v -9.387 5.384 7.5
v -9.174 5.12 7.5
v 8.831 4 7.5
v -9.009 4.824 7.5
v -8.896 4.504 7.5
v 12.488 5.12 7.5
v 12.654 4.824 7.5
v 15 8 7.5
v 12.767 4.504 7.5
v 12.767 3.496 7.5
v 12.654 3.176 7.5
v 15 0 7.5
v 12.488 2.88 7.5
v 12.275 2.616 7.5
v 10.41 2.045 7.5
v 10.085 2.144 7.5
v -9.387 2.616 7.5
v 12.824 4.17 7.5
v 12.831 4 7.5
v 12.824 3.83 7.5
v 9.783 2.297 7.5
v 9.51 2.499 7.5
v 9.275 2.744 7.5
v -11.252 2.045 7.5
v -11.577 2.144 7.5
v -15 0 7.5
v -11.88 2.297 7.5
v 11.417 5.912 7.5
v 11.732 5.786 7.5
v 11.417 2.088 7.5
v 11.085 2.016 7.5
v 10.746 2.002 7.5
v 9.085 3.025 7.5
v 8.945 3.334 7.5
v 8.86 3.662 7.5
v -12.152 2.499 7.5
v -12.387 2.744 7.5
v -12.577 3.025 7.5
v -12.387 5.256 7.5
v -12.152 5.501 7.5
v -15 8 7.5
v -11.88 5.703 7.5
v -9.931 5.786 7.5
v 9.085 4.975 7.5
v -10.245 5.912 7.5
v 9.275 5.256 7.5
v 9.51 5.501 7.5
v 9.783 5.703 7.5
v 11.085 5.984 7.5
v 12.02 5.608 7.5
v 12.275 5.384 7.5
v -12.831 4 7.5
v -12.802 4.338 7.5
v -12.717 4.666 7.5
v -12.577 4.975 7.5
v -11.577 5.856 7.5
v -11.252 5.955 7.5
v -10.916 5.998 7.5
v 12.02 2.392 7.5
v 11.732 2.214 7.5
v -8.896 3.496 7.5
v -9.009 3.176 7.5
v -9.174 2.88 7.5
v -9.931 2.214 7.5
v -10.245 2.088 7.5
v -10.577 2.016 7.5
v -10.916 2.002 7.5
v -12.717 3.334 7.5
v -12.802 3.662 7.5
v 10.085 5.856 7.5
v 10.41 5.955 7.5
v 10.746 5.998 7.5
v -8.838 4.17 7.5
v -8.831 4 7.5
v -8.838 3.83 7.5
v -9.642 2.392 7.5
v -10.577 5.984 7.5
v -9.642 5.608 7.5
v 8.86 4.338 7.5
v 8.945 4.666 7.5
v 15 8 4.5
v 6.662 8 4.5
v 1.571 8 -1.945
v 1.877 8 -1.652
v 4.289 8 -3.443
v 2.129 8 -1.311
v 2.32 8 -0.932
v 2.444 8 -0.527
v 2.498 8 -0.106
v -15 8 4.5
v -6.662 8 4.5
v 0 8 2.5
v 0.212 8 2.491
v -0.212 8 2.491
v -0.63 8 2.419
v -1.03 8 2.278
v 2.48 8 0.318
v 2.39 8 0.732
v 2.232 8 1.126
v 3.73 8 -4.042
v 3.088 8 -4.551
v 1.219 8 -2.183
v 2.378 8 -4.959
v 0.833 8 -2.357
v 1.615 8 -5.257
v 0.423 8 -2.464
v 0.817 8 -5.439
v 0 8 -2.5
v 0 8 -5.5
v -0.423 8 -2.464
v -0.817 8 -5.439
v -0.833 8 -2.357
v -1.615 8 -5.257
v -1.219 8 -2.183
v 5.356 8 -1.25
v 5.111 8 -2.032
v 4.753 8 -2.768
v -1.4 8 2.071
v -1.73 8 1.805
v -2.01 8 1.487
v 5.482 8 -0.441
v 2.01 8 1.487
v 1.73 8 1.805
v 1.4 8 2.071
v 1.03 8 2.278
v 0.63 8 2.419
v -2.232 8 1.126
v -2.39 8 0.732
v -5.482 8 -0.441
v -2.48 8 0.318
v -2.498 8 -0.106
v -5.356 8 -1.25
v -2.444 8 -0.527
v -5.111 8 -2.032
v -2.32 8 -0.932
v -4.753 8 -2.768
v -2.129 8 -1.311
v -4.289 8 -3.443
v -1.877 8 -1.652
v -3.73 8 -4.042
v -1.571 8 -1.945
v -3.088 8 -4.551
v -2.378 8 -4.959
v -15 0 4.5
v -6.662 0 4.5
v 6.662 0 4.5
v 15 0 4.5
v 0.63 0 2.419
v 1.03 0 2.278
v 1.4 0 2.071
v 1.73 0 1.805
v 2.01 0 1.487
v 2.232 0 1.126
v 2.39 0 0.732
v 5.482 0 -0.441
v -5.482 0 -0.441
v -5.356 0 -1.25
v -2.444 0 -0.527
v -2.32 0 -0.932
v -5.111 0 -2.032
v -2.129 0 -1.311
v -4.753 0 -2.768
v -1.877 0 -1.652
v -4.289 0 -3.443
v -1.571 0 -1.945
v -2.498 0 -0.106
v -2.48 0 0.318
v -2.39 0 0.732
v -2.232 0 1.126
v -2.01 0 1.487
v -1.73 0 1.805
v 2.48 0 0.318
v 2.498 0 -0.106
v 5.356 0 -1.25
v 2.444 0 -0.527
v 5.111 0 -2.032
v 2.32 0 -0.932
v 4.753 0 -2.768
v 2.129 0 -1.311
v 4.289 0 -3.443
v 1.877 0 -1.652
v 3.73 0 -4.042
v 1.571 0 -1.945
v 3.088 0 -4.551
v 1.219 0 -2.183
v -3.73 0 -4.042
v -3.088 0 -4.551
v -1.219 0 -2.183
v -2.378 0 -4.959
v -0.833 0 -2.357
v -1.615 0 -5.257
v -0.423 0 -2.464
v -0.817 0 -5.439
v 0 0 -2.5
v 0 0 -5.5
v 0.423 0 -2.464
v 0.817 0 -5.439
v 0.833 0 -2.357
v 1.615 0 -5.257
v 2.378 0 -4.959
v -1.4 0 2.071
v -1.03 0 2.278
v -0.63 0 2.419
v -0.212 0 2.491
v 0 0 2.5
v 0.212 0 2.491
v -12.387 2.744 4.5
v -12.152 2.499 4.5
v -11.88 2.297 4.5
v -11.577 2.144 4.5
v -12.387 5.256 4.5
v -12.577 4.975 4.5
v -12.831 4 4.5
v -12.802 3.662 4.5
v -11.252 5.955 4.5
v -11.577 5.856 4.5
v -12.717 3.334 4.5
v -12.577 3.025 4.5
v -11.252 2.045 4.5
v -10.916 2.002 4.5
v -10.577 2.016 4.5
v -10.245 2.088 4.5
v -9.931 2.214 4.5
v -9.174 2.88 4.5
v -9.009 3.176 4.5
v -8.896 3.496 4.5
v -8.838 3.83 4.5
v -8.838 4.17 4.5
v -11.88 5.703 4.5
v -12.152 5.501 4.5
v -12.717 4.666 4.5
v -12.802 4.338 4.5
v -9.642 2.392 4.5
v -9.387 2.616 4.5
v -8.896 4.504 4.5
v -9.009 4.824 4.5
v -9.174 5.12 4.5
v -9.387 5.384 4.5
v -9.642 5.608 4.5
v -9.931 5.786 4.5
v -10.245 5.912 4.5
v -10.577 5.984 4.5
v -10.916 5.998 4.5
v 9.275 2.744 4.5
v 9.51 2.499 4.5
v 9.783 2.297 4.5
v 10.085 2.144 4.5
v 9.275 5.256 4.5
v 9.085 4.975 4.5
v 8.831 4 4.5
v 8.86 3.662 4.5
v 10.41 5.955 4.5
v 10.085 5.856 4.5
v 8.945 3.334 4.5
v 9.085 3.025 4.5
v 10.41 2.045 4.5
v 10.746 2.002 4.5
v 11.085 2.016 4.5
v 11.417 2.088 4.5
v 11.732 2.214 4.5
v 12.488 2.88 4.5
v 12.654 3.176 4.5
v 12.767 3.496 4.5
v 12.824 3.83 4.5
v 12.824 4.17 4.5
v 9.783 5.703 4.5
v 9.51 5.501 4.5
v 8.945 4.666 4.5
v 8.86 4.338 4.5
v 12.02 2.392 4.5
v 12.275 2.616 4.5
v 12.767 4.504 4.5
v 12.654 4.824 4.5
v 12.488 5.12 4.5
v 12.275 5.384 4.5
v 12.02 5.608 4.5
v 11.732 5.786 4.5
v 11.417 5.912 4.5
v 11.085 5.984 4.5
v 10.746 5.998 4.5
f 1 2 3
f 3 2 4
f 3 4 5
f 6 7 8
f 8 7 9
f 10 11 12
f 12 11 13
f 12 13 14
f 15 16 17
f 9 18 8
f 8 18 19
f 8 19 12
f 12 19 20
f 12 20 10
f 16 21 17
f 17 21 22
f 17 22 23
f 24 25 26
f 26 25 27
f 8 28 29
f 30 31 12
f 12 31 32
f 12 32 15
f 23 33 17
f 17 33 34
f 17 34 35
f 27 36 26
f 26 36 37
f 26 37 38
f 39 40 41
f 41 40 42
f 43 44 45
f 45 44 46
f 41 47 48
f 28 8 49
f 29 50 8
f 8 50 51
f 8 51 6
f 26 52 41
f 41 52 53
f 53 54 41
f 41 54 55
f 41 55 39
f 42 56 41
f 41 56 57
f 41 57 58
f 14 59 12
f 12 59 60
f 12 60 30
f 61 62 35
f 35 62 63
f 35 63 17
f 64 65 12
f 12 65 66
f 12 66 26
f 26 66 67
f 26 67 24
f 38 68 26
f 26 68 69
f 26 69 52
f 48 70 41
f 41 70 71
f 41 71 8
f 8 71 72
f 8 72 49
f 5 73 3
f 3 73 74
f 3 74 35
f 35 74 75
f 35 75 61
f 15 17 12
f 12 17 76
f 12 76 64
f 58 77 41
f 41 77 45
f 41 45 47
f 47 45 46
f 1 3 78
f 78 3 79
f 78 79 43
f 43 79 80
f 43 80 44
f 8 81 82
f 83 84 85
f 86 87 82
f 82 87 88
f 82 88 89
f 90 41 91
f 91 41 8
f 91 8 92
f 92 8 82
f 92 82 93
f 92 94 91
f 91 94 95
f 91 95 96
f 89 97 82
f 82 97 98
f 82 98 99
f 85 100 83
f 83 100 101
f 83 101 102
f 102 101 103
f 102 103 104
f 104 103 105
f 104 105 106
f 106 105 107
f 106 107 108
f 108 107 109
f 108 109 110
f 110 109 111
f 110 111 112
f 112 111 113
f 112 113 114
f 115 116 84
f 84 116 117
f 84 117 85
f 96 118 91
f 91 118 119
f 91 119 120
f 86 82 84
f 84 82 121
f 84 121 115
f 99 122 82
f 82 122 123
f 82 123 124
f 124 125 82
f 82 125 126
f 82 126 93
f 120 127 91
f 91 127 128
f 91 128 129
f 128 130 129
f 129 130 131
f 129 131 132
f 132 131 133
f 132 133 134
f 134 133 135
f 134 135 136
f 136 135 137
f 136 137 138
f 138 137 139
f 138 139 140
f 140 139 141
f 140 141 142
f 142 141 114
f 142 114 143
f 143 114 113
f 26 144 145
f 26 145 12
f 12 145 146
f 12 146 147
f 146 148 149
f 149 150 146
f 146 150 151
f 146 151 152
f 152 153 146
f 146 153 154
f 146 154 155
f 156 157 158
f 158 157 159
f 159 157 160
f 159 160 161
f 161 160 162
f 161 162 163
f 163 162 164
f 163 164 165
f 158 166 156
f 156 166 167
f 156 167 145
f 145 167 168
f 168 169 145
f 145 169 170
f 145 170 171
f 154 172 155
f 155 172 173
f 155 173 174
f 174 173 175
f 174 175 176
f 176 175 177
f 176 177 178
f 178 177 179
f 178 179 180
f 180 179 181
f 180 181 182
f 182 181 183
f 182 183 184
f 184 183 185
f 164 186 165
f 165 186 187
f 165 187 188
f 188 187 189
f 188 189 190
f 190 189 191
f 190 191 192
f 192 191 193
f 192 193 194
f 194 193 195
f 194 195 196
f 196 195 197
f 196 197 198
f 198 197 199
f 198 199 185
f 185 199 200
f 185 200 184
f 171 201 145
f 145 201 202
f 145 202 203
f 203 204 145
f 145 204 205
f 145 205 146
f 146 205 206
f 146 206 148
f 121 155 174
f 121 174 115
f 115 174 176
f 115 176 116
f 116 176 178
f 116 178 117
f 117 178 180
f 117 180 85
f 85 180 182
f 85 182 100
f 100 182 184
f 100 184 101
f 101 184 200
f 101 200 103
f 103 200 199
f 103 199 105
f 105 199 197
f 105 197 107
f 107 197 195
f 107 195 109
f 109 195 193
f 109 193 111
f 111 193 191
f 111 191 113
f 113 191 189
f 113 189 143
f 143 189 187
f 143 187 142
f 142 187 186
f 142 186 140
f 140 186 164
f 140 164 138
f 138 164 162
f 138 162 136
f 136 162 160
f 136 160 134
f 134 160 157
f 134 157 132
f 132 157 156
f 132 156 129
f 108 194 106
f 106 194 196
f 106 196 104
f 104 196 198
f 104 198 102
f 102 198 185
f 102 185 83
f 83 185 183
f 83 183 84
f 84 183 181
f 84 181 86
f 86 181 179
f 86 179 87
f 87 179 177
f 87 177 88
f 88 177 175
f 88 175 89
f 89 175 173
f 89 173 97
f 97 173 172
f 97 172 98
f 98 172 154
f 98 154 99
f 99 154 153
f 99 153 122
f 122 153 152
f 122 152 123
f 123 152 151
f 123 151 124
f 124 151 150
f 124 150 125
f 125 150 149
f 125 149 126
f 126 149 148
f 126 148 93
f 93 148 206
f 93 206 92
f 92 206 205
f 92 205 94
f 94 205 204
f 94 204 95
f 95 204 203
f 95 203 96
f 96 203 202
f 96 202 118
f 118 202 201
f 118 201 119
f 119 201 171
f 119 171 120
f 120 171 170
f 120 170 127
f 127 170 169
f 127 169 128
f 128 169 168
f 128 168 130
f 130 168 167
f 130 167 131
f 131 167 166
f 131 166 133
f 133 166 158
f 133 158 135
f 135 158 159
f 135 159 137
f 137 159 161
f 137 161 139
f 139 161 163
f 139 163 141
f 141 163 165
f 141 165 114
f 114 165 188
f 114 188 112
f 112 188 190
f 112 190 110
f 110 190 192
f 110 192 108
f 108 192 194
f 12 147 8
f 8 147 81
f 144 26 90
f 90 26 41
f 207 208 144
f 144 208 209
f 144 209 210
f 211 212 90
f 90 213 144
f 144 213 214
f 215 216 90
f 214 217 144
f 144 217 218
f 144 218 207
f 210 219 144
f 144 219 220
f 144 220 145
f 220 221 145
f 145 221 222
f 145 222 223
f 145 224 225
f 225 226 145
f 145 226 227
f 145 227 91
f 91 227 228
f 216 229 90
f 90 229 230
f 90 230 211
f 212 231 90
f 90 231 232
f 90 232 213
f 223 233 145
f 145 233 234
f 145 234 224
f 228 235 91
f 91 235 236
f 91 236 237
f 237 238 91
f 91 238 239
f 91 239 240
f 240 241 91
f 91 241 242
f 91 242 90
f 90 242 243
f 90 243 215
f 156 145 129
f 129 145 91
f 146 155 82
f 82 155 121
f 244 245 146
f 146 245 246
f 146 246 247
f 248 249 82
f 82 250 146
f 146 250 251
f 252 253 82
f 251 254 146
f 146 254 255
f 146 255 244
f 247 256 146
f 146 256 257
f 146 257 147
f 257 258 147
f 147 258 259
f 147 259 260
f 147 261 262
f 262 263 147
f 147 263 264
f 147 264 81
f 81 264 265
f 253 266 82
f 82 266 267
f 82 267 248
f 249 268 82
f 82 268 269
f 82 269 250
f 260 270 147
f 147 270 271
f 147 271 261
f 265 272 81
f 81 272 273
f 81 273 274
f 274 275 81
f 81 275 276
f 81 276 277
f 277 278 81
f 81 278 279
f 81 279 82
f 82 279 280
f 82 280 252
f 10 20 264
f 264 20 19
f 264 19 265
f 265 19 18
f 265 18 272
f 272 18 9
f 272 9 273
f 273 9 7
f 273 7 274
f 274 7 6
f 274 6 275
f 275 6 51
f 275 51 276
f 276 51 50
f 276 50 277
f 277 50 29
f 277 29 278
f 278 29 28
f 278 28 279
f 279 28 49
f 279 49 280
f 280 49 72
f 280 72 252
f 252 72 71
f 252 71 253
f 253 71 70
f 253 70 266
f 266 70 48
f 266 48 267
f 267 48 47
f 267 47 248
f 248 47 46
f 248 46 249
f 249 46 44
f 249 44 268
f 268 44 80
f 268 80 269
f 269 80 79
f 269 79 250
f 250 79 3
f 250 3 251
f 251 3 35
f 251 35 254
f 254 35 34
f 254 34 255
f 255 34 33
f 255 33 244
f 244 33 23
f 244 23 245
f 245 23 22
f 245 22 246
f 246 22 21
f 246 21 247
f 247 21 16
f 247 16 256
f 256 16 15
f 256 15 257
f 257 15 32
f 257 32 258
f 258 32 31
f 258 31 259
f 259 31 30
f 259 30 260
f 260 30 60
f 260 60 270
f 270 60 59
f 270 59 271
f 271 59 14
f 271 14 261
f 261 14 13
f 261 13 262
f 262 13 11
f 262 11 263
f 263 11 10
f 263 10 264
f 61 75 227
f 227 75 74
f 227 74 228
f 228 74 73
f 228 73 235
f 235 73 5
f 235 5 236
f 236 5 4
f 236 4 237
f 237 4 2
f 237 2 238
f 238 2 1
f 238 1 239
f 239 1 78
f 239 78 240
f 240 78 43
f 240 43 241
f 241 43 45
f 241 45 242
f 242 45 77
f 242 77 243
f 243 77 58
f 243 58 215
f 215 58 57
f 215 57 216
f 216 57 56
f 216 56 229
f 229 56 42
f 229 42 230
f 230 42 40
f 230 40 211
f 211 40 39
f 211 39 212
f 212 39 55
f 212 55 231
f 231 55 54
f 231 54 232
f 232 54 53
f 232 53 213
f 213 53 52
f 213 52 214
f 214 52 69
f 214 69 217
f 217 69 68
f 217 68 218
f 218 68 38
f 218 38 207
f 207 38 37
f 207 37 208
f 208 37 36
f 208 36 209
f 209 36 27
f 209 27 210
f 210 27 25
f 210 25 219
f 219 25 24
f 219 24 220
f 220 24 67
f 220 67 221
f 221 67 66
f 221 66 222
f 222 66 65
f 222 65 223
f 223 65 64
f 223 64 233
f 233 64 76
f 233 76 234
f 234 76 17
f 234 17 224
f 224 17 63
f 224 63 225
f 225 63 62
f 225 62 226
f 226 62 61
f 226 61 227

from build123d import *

# Parameters (mm, degrees)
SKETCH1_R           = 5.5
SKETCH1_R_2         = 2.5
BOSS_EXTRUDE1_DEPTH = 8
BOSS_EXTRUDE2_START = -8
BOSS_EXTRUDE2_DEPTH = 8
SKETCH3_R           = 2
CUT_EXTRUDE1_DEPTH  = 8


with BuildPart() as part:
    # Sketch1 → Boss-Extrude1 (new body)
    with BuildSketch(Plane(origin=(0, 0, 0), x_dir=(1, 0, 0), z_dir=(0, 1, 0))):
        with Locations(Location((0, 0, 0), (0, 0, 270))):
            Circle(SKETCH1_R)
        with Locations(Location((0, 0, 0), (0, 0, 270))):
            Circle(SKETCH1_R_2, mode=Mode.SUBTRACT)
    extrude(amount=BOSS_EXTRUDE1_DEPTH)

    # Sketch2 → Boss-Extrude2 (add)
    with BuildSketch(Plane(origin=(0, 8, 0), x_dir=(1, 0, 0), z_dir=(0, 1, 0)).offset(BOSS_EXTRUDE2_START)):
        with BuildLine():
            Line((15, -4.5), (6.662278045, -4.5))
            Line((6.662278045, -4.5), (3.16227766, -4.5))
            ThreePointArc((3.16227766, -4.5), (1.658312395, -5.244044241), (0, -5.5))
            Line((0, -5.5), (0, -7.5))
            Line((0, -7.5), (15, -7.5))
            Line((15, -7.5), (15, -4.5))
        make_face()
        with BuildLine():
            Line((6.662278045, -4.5), (5.4823084, 0.440788615))
            ThreePointArc((5.4823084, 0.440788615), (5.49557532, 0.220571755), (5.5, 0))
            ThreePointArc((5.5, 0), (4.880703184, -2.535495304), (3.16227766, -4.5))
            Line((3.16227766, -4.5), (6.662278045, -4.5))
        make_face()
        with BuildLine():
            ThreePointArc((-3.16227766, -4.5), (-4.978460111, -2.337720027), (-5.4823084, 0.440788615))
            Line((-5.4823084, 0.440788615), (-6.662278045, -4.5))
            Line((-6.662278045, -4.5), (-3.16227766, -4.5))
        make_face()
        with BuildLine():
            Line((-3.16227766, -4.5), (-6.662278045, -4.5))
            Line((-6.662278045, -4.5), (-15, -4.5))
            Line((-15, -4.5), (-15, -7.5))
            Line((-15, -7.5), (0, -7.5))
            Line((0, -7.5), (0, -5.5))
            ThreePointArc((0, -5.5), (-1.658312395, -5.244044241), (-3.16227766, -4.5))
        make_face()
    extrude(amount=BOSS_EXTRUDE2_DEPTH)

    # Sketch3 → Cut-Extrude1 (cut)
    with BuildSketch(Plane(origin=(0, 0, 4.5), x_dir=(-1, 0, 0), z_dir=(0, 0, -1))):
        with BuildLine():
            ThreePointArc((-8.831139022, 4), (-10.831139022, 6), (-12.831139022, 4))
            Line((-12.831139022, 4), (-8.831139022, 4))
        make_face()
        with BuildLine():
            Line((-8.831139022, 4), (-12.831139022, 4))
            ThreePointArc((-12.831139022, 4), (-10.831139022, 2), (-8.831139022, 4))
        make_face()
        with Locations((10.831139022, 4)):
            Circle(SKETCH3_R)
    extrude(amount=-CUT_EXTRUDE1_DEPTH, mode=Mode.SUBTRACT)


solid = part.part
